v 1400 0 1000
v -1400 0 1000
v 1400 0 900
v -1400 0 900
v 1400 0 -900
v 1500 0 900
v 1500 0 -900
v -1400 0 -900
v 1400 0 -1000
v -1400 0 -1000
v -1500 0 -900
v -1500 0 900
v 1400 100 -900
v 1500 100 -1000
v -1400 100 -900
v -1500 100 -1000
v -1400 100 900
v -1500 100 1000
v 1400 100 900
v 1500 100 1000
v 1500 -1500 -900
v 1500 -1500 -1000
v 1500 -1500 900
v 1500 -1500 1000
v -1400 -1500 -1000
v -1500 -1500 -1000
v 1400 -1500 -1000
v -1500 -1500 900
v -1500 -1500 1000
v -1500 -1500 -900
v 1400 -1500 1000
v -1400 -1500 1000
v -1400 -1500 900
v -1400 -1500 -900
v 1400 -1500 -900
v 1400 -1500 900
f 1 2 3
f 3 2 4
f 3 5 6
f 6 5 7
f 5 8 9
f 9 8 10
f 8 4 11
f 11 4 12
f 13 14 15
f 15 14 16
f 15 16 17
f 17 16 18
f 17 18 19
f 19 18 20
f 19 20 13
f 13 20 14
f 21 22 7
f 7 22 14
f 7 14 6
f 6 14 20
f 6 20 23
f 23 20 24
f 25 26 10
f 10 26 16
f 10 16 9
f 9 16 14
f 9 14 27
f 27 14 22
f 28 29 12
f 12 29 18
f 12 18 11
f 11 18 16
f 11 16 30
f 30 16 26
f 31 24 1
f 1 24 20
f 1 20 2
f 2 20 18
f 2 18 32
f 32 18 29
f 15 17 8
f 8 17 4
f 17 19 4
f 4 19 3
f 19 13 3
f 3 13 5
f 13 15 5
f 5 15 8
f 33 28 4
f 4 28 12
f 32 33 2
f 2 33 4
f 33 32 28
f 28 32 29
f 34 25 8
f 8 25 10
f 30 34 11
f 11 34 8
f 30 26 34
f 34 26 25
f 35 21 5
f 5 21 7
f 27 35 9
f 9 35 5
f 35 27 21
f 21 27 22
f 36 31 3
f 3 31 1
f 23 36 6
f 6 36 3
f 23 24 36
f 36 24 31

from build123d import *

# Parameters (mm, degrees)
CROQUIS1_W              = 3000
CROQUIS1_H              = 2000
CROQUIS1_W_2            = 2800
CROQUIS1_H_2            = 1800
SALIENTE_EXTRUIR1_DEPTH = 100
CROQUIS2_W              = 100
CROQUIS2_H              = 100
SALIENTE_EXTRUIR2_DEPTH = 1500


with BuildPart() as part:
    # Croquis1 → Saliente-Extruir1 (new body)
    with BuildSketch(Plane(origin=(0, 0, 0), x_dir=(1, 0, 0), z_dir=(0, 1, 0))):
        Rectangle(CROQUIS1_W, CROQUIS1_H)
        Rectangle(CROQUIS1_W_2, CROQUIS1_H_2, mode=Mode.SUBTRACT)
    extrude(amount=SALIENTE_EXTRUIR1_DEPTH)

    # Croquis2 → Saliente-Extruir2 (add)
    with BuildSketch(Plane.XZ):
        with Locations((-1450, 950)):
            Rectangle(CROQUIS2_W, CROQUIS2_H)
        with Locations((-1450, -950)):
            Rectangle(CROQUIS2_W, CROQUIS2_H)
        with Locations((1450, -950)):
            Rectangle(CROQUIS2_W, CROQUIS2_H)
        with Locations((1450, 950)):
            Rectangle(CROQUIS2_W, CROQUIS2_H)
    extrude(amount=SALIENTE_EXTRUIR2_DEPTH)


solid = part.part
